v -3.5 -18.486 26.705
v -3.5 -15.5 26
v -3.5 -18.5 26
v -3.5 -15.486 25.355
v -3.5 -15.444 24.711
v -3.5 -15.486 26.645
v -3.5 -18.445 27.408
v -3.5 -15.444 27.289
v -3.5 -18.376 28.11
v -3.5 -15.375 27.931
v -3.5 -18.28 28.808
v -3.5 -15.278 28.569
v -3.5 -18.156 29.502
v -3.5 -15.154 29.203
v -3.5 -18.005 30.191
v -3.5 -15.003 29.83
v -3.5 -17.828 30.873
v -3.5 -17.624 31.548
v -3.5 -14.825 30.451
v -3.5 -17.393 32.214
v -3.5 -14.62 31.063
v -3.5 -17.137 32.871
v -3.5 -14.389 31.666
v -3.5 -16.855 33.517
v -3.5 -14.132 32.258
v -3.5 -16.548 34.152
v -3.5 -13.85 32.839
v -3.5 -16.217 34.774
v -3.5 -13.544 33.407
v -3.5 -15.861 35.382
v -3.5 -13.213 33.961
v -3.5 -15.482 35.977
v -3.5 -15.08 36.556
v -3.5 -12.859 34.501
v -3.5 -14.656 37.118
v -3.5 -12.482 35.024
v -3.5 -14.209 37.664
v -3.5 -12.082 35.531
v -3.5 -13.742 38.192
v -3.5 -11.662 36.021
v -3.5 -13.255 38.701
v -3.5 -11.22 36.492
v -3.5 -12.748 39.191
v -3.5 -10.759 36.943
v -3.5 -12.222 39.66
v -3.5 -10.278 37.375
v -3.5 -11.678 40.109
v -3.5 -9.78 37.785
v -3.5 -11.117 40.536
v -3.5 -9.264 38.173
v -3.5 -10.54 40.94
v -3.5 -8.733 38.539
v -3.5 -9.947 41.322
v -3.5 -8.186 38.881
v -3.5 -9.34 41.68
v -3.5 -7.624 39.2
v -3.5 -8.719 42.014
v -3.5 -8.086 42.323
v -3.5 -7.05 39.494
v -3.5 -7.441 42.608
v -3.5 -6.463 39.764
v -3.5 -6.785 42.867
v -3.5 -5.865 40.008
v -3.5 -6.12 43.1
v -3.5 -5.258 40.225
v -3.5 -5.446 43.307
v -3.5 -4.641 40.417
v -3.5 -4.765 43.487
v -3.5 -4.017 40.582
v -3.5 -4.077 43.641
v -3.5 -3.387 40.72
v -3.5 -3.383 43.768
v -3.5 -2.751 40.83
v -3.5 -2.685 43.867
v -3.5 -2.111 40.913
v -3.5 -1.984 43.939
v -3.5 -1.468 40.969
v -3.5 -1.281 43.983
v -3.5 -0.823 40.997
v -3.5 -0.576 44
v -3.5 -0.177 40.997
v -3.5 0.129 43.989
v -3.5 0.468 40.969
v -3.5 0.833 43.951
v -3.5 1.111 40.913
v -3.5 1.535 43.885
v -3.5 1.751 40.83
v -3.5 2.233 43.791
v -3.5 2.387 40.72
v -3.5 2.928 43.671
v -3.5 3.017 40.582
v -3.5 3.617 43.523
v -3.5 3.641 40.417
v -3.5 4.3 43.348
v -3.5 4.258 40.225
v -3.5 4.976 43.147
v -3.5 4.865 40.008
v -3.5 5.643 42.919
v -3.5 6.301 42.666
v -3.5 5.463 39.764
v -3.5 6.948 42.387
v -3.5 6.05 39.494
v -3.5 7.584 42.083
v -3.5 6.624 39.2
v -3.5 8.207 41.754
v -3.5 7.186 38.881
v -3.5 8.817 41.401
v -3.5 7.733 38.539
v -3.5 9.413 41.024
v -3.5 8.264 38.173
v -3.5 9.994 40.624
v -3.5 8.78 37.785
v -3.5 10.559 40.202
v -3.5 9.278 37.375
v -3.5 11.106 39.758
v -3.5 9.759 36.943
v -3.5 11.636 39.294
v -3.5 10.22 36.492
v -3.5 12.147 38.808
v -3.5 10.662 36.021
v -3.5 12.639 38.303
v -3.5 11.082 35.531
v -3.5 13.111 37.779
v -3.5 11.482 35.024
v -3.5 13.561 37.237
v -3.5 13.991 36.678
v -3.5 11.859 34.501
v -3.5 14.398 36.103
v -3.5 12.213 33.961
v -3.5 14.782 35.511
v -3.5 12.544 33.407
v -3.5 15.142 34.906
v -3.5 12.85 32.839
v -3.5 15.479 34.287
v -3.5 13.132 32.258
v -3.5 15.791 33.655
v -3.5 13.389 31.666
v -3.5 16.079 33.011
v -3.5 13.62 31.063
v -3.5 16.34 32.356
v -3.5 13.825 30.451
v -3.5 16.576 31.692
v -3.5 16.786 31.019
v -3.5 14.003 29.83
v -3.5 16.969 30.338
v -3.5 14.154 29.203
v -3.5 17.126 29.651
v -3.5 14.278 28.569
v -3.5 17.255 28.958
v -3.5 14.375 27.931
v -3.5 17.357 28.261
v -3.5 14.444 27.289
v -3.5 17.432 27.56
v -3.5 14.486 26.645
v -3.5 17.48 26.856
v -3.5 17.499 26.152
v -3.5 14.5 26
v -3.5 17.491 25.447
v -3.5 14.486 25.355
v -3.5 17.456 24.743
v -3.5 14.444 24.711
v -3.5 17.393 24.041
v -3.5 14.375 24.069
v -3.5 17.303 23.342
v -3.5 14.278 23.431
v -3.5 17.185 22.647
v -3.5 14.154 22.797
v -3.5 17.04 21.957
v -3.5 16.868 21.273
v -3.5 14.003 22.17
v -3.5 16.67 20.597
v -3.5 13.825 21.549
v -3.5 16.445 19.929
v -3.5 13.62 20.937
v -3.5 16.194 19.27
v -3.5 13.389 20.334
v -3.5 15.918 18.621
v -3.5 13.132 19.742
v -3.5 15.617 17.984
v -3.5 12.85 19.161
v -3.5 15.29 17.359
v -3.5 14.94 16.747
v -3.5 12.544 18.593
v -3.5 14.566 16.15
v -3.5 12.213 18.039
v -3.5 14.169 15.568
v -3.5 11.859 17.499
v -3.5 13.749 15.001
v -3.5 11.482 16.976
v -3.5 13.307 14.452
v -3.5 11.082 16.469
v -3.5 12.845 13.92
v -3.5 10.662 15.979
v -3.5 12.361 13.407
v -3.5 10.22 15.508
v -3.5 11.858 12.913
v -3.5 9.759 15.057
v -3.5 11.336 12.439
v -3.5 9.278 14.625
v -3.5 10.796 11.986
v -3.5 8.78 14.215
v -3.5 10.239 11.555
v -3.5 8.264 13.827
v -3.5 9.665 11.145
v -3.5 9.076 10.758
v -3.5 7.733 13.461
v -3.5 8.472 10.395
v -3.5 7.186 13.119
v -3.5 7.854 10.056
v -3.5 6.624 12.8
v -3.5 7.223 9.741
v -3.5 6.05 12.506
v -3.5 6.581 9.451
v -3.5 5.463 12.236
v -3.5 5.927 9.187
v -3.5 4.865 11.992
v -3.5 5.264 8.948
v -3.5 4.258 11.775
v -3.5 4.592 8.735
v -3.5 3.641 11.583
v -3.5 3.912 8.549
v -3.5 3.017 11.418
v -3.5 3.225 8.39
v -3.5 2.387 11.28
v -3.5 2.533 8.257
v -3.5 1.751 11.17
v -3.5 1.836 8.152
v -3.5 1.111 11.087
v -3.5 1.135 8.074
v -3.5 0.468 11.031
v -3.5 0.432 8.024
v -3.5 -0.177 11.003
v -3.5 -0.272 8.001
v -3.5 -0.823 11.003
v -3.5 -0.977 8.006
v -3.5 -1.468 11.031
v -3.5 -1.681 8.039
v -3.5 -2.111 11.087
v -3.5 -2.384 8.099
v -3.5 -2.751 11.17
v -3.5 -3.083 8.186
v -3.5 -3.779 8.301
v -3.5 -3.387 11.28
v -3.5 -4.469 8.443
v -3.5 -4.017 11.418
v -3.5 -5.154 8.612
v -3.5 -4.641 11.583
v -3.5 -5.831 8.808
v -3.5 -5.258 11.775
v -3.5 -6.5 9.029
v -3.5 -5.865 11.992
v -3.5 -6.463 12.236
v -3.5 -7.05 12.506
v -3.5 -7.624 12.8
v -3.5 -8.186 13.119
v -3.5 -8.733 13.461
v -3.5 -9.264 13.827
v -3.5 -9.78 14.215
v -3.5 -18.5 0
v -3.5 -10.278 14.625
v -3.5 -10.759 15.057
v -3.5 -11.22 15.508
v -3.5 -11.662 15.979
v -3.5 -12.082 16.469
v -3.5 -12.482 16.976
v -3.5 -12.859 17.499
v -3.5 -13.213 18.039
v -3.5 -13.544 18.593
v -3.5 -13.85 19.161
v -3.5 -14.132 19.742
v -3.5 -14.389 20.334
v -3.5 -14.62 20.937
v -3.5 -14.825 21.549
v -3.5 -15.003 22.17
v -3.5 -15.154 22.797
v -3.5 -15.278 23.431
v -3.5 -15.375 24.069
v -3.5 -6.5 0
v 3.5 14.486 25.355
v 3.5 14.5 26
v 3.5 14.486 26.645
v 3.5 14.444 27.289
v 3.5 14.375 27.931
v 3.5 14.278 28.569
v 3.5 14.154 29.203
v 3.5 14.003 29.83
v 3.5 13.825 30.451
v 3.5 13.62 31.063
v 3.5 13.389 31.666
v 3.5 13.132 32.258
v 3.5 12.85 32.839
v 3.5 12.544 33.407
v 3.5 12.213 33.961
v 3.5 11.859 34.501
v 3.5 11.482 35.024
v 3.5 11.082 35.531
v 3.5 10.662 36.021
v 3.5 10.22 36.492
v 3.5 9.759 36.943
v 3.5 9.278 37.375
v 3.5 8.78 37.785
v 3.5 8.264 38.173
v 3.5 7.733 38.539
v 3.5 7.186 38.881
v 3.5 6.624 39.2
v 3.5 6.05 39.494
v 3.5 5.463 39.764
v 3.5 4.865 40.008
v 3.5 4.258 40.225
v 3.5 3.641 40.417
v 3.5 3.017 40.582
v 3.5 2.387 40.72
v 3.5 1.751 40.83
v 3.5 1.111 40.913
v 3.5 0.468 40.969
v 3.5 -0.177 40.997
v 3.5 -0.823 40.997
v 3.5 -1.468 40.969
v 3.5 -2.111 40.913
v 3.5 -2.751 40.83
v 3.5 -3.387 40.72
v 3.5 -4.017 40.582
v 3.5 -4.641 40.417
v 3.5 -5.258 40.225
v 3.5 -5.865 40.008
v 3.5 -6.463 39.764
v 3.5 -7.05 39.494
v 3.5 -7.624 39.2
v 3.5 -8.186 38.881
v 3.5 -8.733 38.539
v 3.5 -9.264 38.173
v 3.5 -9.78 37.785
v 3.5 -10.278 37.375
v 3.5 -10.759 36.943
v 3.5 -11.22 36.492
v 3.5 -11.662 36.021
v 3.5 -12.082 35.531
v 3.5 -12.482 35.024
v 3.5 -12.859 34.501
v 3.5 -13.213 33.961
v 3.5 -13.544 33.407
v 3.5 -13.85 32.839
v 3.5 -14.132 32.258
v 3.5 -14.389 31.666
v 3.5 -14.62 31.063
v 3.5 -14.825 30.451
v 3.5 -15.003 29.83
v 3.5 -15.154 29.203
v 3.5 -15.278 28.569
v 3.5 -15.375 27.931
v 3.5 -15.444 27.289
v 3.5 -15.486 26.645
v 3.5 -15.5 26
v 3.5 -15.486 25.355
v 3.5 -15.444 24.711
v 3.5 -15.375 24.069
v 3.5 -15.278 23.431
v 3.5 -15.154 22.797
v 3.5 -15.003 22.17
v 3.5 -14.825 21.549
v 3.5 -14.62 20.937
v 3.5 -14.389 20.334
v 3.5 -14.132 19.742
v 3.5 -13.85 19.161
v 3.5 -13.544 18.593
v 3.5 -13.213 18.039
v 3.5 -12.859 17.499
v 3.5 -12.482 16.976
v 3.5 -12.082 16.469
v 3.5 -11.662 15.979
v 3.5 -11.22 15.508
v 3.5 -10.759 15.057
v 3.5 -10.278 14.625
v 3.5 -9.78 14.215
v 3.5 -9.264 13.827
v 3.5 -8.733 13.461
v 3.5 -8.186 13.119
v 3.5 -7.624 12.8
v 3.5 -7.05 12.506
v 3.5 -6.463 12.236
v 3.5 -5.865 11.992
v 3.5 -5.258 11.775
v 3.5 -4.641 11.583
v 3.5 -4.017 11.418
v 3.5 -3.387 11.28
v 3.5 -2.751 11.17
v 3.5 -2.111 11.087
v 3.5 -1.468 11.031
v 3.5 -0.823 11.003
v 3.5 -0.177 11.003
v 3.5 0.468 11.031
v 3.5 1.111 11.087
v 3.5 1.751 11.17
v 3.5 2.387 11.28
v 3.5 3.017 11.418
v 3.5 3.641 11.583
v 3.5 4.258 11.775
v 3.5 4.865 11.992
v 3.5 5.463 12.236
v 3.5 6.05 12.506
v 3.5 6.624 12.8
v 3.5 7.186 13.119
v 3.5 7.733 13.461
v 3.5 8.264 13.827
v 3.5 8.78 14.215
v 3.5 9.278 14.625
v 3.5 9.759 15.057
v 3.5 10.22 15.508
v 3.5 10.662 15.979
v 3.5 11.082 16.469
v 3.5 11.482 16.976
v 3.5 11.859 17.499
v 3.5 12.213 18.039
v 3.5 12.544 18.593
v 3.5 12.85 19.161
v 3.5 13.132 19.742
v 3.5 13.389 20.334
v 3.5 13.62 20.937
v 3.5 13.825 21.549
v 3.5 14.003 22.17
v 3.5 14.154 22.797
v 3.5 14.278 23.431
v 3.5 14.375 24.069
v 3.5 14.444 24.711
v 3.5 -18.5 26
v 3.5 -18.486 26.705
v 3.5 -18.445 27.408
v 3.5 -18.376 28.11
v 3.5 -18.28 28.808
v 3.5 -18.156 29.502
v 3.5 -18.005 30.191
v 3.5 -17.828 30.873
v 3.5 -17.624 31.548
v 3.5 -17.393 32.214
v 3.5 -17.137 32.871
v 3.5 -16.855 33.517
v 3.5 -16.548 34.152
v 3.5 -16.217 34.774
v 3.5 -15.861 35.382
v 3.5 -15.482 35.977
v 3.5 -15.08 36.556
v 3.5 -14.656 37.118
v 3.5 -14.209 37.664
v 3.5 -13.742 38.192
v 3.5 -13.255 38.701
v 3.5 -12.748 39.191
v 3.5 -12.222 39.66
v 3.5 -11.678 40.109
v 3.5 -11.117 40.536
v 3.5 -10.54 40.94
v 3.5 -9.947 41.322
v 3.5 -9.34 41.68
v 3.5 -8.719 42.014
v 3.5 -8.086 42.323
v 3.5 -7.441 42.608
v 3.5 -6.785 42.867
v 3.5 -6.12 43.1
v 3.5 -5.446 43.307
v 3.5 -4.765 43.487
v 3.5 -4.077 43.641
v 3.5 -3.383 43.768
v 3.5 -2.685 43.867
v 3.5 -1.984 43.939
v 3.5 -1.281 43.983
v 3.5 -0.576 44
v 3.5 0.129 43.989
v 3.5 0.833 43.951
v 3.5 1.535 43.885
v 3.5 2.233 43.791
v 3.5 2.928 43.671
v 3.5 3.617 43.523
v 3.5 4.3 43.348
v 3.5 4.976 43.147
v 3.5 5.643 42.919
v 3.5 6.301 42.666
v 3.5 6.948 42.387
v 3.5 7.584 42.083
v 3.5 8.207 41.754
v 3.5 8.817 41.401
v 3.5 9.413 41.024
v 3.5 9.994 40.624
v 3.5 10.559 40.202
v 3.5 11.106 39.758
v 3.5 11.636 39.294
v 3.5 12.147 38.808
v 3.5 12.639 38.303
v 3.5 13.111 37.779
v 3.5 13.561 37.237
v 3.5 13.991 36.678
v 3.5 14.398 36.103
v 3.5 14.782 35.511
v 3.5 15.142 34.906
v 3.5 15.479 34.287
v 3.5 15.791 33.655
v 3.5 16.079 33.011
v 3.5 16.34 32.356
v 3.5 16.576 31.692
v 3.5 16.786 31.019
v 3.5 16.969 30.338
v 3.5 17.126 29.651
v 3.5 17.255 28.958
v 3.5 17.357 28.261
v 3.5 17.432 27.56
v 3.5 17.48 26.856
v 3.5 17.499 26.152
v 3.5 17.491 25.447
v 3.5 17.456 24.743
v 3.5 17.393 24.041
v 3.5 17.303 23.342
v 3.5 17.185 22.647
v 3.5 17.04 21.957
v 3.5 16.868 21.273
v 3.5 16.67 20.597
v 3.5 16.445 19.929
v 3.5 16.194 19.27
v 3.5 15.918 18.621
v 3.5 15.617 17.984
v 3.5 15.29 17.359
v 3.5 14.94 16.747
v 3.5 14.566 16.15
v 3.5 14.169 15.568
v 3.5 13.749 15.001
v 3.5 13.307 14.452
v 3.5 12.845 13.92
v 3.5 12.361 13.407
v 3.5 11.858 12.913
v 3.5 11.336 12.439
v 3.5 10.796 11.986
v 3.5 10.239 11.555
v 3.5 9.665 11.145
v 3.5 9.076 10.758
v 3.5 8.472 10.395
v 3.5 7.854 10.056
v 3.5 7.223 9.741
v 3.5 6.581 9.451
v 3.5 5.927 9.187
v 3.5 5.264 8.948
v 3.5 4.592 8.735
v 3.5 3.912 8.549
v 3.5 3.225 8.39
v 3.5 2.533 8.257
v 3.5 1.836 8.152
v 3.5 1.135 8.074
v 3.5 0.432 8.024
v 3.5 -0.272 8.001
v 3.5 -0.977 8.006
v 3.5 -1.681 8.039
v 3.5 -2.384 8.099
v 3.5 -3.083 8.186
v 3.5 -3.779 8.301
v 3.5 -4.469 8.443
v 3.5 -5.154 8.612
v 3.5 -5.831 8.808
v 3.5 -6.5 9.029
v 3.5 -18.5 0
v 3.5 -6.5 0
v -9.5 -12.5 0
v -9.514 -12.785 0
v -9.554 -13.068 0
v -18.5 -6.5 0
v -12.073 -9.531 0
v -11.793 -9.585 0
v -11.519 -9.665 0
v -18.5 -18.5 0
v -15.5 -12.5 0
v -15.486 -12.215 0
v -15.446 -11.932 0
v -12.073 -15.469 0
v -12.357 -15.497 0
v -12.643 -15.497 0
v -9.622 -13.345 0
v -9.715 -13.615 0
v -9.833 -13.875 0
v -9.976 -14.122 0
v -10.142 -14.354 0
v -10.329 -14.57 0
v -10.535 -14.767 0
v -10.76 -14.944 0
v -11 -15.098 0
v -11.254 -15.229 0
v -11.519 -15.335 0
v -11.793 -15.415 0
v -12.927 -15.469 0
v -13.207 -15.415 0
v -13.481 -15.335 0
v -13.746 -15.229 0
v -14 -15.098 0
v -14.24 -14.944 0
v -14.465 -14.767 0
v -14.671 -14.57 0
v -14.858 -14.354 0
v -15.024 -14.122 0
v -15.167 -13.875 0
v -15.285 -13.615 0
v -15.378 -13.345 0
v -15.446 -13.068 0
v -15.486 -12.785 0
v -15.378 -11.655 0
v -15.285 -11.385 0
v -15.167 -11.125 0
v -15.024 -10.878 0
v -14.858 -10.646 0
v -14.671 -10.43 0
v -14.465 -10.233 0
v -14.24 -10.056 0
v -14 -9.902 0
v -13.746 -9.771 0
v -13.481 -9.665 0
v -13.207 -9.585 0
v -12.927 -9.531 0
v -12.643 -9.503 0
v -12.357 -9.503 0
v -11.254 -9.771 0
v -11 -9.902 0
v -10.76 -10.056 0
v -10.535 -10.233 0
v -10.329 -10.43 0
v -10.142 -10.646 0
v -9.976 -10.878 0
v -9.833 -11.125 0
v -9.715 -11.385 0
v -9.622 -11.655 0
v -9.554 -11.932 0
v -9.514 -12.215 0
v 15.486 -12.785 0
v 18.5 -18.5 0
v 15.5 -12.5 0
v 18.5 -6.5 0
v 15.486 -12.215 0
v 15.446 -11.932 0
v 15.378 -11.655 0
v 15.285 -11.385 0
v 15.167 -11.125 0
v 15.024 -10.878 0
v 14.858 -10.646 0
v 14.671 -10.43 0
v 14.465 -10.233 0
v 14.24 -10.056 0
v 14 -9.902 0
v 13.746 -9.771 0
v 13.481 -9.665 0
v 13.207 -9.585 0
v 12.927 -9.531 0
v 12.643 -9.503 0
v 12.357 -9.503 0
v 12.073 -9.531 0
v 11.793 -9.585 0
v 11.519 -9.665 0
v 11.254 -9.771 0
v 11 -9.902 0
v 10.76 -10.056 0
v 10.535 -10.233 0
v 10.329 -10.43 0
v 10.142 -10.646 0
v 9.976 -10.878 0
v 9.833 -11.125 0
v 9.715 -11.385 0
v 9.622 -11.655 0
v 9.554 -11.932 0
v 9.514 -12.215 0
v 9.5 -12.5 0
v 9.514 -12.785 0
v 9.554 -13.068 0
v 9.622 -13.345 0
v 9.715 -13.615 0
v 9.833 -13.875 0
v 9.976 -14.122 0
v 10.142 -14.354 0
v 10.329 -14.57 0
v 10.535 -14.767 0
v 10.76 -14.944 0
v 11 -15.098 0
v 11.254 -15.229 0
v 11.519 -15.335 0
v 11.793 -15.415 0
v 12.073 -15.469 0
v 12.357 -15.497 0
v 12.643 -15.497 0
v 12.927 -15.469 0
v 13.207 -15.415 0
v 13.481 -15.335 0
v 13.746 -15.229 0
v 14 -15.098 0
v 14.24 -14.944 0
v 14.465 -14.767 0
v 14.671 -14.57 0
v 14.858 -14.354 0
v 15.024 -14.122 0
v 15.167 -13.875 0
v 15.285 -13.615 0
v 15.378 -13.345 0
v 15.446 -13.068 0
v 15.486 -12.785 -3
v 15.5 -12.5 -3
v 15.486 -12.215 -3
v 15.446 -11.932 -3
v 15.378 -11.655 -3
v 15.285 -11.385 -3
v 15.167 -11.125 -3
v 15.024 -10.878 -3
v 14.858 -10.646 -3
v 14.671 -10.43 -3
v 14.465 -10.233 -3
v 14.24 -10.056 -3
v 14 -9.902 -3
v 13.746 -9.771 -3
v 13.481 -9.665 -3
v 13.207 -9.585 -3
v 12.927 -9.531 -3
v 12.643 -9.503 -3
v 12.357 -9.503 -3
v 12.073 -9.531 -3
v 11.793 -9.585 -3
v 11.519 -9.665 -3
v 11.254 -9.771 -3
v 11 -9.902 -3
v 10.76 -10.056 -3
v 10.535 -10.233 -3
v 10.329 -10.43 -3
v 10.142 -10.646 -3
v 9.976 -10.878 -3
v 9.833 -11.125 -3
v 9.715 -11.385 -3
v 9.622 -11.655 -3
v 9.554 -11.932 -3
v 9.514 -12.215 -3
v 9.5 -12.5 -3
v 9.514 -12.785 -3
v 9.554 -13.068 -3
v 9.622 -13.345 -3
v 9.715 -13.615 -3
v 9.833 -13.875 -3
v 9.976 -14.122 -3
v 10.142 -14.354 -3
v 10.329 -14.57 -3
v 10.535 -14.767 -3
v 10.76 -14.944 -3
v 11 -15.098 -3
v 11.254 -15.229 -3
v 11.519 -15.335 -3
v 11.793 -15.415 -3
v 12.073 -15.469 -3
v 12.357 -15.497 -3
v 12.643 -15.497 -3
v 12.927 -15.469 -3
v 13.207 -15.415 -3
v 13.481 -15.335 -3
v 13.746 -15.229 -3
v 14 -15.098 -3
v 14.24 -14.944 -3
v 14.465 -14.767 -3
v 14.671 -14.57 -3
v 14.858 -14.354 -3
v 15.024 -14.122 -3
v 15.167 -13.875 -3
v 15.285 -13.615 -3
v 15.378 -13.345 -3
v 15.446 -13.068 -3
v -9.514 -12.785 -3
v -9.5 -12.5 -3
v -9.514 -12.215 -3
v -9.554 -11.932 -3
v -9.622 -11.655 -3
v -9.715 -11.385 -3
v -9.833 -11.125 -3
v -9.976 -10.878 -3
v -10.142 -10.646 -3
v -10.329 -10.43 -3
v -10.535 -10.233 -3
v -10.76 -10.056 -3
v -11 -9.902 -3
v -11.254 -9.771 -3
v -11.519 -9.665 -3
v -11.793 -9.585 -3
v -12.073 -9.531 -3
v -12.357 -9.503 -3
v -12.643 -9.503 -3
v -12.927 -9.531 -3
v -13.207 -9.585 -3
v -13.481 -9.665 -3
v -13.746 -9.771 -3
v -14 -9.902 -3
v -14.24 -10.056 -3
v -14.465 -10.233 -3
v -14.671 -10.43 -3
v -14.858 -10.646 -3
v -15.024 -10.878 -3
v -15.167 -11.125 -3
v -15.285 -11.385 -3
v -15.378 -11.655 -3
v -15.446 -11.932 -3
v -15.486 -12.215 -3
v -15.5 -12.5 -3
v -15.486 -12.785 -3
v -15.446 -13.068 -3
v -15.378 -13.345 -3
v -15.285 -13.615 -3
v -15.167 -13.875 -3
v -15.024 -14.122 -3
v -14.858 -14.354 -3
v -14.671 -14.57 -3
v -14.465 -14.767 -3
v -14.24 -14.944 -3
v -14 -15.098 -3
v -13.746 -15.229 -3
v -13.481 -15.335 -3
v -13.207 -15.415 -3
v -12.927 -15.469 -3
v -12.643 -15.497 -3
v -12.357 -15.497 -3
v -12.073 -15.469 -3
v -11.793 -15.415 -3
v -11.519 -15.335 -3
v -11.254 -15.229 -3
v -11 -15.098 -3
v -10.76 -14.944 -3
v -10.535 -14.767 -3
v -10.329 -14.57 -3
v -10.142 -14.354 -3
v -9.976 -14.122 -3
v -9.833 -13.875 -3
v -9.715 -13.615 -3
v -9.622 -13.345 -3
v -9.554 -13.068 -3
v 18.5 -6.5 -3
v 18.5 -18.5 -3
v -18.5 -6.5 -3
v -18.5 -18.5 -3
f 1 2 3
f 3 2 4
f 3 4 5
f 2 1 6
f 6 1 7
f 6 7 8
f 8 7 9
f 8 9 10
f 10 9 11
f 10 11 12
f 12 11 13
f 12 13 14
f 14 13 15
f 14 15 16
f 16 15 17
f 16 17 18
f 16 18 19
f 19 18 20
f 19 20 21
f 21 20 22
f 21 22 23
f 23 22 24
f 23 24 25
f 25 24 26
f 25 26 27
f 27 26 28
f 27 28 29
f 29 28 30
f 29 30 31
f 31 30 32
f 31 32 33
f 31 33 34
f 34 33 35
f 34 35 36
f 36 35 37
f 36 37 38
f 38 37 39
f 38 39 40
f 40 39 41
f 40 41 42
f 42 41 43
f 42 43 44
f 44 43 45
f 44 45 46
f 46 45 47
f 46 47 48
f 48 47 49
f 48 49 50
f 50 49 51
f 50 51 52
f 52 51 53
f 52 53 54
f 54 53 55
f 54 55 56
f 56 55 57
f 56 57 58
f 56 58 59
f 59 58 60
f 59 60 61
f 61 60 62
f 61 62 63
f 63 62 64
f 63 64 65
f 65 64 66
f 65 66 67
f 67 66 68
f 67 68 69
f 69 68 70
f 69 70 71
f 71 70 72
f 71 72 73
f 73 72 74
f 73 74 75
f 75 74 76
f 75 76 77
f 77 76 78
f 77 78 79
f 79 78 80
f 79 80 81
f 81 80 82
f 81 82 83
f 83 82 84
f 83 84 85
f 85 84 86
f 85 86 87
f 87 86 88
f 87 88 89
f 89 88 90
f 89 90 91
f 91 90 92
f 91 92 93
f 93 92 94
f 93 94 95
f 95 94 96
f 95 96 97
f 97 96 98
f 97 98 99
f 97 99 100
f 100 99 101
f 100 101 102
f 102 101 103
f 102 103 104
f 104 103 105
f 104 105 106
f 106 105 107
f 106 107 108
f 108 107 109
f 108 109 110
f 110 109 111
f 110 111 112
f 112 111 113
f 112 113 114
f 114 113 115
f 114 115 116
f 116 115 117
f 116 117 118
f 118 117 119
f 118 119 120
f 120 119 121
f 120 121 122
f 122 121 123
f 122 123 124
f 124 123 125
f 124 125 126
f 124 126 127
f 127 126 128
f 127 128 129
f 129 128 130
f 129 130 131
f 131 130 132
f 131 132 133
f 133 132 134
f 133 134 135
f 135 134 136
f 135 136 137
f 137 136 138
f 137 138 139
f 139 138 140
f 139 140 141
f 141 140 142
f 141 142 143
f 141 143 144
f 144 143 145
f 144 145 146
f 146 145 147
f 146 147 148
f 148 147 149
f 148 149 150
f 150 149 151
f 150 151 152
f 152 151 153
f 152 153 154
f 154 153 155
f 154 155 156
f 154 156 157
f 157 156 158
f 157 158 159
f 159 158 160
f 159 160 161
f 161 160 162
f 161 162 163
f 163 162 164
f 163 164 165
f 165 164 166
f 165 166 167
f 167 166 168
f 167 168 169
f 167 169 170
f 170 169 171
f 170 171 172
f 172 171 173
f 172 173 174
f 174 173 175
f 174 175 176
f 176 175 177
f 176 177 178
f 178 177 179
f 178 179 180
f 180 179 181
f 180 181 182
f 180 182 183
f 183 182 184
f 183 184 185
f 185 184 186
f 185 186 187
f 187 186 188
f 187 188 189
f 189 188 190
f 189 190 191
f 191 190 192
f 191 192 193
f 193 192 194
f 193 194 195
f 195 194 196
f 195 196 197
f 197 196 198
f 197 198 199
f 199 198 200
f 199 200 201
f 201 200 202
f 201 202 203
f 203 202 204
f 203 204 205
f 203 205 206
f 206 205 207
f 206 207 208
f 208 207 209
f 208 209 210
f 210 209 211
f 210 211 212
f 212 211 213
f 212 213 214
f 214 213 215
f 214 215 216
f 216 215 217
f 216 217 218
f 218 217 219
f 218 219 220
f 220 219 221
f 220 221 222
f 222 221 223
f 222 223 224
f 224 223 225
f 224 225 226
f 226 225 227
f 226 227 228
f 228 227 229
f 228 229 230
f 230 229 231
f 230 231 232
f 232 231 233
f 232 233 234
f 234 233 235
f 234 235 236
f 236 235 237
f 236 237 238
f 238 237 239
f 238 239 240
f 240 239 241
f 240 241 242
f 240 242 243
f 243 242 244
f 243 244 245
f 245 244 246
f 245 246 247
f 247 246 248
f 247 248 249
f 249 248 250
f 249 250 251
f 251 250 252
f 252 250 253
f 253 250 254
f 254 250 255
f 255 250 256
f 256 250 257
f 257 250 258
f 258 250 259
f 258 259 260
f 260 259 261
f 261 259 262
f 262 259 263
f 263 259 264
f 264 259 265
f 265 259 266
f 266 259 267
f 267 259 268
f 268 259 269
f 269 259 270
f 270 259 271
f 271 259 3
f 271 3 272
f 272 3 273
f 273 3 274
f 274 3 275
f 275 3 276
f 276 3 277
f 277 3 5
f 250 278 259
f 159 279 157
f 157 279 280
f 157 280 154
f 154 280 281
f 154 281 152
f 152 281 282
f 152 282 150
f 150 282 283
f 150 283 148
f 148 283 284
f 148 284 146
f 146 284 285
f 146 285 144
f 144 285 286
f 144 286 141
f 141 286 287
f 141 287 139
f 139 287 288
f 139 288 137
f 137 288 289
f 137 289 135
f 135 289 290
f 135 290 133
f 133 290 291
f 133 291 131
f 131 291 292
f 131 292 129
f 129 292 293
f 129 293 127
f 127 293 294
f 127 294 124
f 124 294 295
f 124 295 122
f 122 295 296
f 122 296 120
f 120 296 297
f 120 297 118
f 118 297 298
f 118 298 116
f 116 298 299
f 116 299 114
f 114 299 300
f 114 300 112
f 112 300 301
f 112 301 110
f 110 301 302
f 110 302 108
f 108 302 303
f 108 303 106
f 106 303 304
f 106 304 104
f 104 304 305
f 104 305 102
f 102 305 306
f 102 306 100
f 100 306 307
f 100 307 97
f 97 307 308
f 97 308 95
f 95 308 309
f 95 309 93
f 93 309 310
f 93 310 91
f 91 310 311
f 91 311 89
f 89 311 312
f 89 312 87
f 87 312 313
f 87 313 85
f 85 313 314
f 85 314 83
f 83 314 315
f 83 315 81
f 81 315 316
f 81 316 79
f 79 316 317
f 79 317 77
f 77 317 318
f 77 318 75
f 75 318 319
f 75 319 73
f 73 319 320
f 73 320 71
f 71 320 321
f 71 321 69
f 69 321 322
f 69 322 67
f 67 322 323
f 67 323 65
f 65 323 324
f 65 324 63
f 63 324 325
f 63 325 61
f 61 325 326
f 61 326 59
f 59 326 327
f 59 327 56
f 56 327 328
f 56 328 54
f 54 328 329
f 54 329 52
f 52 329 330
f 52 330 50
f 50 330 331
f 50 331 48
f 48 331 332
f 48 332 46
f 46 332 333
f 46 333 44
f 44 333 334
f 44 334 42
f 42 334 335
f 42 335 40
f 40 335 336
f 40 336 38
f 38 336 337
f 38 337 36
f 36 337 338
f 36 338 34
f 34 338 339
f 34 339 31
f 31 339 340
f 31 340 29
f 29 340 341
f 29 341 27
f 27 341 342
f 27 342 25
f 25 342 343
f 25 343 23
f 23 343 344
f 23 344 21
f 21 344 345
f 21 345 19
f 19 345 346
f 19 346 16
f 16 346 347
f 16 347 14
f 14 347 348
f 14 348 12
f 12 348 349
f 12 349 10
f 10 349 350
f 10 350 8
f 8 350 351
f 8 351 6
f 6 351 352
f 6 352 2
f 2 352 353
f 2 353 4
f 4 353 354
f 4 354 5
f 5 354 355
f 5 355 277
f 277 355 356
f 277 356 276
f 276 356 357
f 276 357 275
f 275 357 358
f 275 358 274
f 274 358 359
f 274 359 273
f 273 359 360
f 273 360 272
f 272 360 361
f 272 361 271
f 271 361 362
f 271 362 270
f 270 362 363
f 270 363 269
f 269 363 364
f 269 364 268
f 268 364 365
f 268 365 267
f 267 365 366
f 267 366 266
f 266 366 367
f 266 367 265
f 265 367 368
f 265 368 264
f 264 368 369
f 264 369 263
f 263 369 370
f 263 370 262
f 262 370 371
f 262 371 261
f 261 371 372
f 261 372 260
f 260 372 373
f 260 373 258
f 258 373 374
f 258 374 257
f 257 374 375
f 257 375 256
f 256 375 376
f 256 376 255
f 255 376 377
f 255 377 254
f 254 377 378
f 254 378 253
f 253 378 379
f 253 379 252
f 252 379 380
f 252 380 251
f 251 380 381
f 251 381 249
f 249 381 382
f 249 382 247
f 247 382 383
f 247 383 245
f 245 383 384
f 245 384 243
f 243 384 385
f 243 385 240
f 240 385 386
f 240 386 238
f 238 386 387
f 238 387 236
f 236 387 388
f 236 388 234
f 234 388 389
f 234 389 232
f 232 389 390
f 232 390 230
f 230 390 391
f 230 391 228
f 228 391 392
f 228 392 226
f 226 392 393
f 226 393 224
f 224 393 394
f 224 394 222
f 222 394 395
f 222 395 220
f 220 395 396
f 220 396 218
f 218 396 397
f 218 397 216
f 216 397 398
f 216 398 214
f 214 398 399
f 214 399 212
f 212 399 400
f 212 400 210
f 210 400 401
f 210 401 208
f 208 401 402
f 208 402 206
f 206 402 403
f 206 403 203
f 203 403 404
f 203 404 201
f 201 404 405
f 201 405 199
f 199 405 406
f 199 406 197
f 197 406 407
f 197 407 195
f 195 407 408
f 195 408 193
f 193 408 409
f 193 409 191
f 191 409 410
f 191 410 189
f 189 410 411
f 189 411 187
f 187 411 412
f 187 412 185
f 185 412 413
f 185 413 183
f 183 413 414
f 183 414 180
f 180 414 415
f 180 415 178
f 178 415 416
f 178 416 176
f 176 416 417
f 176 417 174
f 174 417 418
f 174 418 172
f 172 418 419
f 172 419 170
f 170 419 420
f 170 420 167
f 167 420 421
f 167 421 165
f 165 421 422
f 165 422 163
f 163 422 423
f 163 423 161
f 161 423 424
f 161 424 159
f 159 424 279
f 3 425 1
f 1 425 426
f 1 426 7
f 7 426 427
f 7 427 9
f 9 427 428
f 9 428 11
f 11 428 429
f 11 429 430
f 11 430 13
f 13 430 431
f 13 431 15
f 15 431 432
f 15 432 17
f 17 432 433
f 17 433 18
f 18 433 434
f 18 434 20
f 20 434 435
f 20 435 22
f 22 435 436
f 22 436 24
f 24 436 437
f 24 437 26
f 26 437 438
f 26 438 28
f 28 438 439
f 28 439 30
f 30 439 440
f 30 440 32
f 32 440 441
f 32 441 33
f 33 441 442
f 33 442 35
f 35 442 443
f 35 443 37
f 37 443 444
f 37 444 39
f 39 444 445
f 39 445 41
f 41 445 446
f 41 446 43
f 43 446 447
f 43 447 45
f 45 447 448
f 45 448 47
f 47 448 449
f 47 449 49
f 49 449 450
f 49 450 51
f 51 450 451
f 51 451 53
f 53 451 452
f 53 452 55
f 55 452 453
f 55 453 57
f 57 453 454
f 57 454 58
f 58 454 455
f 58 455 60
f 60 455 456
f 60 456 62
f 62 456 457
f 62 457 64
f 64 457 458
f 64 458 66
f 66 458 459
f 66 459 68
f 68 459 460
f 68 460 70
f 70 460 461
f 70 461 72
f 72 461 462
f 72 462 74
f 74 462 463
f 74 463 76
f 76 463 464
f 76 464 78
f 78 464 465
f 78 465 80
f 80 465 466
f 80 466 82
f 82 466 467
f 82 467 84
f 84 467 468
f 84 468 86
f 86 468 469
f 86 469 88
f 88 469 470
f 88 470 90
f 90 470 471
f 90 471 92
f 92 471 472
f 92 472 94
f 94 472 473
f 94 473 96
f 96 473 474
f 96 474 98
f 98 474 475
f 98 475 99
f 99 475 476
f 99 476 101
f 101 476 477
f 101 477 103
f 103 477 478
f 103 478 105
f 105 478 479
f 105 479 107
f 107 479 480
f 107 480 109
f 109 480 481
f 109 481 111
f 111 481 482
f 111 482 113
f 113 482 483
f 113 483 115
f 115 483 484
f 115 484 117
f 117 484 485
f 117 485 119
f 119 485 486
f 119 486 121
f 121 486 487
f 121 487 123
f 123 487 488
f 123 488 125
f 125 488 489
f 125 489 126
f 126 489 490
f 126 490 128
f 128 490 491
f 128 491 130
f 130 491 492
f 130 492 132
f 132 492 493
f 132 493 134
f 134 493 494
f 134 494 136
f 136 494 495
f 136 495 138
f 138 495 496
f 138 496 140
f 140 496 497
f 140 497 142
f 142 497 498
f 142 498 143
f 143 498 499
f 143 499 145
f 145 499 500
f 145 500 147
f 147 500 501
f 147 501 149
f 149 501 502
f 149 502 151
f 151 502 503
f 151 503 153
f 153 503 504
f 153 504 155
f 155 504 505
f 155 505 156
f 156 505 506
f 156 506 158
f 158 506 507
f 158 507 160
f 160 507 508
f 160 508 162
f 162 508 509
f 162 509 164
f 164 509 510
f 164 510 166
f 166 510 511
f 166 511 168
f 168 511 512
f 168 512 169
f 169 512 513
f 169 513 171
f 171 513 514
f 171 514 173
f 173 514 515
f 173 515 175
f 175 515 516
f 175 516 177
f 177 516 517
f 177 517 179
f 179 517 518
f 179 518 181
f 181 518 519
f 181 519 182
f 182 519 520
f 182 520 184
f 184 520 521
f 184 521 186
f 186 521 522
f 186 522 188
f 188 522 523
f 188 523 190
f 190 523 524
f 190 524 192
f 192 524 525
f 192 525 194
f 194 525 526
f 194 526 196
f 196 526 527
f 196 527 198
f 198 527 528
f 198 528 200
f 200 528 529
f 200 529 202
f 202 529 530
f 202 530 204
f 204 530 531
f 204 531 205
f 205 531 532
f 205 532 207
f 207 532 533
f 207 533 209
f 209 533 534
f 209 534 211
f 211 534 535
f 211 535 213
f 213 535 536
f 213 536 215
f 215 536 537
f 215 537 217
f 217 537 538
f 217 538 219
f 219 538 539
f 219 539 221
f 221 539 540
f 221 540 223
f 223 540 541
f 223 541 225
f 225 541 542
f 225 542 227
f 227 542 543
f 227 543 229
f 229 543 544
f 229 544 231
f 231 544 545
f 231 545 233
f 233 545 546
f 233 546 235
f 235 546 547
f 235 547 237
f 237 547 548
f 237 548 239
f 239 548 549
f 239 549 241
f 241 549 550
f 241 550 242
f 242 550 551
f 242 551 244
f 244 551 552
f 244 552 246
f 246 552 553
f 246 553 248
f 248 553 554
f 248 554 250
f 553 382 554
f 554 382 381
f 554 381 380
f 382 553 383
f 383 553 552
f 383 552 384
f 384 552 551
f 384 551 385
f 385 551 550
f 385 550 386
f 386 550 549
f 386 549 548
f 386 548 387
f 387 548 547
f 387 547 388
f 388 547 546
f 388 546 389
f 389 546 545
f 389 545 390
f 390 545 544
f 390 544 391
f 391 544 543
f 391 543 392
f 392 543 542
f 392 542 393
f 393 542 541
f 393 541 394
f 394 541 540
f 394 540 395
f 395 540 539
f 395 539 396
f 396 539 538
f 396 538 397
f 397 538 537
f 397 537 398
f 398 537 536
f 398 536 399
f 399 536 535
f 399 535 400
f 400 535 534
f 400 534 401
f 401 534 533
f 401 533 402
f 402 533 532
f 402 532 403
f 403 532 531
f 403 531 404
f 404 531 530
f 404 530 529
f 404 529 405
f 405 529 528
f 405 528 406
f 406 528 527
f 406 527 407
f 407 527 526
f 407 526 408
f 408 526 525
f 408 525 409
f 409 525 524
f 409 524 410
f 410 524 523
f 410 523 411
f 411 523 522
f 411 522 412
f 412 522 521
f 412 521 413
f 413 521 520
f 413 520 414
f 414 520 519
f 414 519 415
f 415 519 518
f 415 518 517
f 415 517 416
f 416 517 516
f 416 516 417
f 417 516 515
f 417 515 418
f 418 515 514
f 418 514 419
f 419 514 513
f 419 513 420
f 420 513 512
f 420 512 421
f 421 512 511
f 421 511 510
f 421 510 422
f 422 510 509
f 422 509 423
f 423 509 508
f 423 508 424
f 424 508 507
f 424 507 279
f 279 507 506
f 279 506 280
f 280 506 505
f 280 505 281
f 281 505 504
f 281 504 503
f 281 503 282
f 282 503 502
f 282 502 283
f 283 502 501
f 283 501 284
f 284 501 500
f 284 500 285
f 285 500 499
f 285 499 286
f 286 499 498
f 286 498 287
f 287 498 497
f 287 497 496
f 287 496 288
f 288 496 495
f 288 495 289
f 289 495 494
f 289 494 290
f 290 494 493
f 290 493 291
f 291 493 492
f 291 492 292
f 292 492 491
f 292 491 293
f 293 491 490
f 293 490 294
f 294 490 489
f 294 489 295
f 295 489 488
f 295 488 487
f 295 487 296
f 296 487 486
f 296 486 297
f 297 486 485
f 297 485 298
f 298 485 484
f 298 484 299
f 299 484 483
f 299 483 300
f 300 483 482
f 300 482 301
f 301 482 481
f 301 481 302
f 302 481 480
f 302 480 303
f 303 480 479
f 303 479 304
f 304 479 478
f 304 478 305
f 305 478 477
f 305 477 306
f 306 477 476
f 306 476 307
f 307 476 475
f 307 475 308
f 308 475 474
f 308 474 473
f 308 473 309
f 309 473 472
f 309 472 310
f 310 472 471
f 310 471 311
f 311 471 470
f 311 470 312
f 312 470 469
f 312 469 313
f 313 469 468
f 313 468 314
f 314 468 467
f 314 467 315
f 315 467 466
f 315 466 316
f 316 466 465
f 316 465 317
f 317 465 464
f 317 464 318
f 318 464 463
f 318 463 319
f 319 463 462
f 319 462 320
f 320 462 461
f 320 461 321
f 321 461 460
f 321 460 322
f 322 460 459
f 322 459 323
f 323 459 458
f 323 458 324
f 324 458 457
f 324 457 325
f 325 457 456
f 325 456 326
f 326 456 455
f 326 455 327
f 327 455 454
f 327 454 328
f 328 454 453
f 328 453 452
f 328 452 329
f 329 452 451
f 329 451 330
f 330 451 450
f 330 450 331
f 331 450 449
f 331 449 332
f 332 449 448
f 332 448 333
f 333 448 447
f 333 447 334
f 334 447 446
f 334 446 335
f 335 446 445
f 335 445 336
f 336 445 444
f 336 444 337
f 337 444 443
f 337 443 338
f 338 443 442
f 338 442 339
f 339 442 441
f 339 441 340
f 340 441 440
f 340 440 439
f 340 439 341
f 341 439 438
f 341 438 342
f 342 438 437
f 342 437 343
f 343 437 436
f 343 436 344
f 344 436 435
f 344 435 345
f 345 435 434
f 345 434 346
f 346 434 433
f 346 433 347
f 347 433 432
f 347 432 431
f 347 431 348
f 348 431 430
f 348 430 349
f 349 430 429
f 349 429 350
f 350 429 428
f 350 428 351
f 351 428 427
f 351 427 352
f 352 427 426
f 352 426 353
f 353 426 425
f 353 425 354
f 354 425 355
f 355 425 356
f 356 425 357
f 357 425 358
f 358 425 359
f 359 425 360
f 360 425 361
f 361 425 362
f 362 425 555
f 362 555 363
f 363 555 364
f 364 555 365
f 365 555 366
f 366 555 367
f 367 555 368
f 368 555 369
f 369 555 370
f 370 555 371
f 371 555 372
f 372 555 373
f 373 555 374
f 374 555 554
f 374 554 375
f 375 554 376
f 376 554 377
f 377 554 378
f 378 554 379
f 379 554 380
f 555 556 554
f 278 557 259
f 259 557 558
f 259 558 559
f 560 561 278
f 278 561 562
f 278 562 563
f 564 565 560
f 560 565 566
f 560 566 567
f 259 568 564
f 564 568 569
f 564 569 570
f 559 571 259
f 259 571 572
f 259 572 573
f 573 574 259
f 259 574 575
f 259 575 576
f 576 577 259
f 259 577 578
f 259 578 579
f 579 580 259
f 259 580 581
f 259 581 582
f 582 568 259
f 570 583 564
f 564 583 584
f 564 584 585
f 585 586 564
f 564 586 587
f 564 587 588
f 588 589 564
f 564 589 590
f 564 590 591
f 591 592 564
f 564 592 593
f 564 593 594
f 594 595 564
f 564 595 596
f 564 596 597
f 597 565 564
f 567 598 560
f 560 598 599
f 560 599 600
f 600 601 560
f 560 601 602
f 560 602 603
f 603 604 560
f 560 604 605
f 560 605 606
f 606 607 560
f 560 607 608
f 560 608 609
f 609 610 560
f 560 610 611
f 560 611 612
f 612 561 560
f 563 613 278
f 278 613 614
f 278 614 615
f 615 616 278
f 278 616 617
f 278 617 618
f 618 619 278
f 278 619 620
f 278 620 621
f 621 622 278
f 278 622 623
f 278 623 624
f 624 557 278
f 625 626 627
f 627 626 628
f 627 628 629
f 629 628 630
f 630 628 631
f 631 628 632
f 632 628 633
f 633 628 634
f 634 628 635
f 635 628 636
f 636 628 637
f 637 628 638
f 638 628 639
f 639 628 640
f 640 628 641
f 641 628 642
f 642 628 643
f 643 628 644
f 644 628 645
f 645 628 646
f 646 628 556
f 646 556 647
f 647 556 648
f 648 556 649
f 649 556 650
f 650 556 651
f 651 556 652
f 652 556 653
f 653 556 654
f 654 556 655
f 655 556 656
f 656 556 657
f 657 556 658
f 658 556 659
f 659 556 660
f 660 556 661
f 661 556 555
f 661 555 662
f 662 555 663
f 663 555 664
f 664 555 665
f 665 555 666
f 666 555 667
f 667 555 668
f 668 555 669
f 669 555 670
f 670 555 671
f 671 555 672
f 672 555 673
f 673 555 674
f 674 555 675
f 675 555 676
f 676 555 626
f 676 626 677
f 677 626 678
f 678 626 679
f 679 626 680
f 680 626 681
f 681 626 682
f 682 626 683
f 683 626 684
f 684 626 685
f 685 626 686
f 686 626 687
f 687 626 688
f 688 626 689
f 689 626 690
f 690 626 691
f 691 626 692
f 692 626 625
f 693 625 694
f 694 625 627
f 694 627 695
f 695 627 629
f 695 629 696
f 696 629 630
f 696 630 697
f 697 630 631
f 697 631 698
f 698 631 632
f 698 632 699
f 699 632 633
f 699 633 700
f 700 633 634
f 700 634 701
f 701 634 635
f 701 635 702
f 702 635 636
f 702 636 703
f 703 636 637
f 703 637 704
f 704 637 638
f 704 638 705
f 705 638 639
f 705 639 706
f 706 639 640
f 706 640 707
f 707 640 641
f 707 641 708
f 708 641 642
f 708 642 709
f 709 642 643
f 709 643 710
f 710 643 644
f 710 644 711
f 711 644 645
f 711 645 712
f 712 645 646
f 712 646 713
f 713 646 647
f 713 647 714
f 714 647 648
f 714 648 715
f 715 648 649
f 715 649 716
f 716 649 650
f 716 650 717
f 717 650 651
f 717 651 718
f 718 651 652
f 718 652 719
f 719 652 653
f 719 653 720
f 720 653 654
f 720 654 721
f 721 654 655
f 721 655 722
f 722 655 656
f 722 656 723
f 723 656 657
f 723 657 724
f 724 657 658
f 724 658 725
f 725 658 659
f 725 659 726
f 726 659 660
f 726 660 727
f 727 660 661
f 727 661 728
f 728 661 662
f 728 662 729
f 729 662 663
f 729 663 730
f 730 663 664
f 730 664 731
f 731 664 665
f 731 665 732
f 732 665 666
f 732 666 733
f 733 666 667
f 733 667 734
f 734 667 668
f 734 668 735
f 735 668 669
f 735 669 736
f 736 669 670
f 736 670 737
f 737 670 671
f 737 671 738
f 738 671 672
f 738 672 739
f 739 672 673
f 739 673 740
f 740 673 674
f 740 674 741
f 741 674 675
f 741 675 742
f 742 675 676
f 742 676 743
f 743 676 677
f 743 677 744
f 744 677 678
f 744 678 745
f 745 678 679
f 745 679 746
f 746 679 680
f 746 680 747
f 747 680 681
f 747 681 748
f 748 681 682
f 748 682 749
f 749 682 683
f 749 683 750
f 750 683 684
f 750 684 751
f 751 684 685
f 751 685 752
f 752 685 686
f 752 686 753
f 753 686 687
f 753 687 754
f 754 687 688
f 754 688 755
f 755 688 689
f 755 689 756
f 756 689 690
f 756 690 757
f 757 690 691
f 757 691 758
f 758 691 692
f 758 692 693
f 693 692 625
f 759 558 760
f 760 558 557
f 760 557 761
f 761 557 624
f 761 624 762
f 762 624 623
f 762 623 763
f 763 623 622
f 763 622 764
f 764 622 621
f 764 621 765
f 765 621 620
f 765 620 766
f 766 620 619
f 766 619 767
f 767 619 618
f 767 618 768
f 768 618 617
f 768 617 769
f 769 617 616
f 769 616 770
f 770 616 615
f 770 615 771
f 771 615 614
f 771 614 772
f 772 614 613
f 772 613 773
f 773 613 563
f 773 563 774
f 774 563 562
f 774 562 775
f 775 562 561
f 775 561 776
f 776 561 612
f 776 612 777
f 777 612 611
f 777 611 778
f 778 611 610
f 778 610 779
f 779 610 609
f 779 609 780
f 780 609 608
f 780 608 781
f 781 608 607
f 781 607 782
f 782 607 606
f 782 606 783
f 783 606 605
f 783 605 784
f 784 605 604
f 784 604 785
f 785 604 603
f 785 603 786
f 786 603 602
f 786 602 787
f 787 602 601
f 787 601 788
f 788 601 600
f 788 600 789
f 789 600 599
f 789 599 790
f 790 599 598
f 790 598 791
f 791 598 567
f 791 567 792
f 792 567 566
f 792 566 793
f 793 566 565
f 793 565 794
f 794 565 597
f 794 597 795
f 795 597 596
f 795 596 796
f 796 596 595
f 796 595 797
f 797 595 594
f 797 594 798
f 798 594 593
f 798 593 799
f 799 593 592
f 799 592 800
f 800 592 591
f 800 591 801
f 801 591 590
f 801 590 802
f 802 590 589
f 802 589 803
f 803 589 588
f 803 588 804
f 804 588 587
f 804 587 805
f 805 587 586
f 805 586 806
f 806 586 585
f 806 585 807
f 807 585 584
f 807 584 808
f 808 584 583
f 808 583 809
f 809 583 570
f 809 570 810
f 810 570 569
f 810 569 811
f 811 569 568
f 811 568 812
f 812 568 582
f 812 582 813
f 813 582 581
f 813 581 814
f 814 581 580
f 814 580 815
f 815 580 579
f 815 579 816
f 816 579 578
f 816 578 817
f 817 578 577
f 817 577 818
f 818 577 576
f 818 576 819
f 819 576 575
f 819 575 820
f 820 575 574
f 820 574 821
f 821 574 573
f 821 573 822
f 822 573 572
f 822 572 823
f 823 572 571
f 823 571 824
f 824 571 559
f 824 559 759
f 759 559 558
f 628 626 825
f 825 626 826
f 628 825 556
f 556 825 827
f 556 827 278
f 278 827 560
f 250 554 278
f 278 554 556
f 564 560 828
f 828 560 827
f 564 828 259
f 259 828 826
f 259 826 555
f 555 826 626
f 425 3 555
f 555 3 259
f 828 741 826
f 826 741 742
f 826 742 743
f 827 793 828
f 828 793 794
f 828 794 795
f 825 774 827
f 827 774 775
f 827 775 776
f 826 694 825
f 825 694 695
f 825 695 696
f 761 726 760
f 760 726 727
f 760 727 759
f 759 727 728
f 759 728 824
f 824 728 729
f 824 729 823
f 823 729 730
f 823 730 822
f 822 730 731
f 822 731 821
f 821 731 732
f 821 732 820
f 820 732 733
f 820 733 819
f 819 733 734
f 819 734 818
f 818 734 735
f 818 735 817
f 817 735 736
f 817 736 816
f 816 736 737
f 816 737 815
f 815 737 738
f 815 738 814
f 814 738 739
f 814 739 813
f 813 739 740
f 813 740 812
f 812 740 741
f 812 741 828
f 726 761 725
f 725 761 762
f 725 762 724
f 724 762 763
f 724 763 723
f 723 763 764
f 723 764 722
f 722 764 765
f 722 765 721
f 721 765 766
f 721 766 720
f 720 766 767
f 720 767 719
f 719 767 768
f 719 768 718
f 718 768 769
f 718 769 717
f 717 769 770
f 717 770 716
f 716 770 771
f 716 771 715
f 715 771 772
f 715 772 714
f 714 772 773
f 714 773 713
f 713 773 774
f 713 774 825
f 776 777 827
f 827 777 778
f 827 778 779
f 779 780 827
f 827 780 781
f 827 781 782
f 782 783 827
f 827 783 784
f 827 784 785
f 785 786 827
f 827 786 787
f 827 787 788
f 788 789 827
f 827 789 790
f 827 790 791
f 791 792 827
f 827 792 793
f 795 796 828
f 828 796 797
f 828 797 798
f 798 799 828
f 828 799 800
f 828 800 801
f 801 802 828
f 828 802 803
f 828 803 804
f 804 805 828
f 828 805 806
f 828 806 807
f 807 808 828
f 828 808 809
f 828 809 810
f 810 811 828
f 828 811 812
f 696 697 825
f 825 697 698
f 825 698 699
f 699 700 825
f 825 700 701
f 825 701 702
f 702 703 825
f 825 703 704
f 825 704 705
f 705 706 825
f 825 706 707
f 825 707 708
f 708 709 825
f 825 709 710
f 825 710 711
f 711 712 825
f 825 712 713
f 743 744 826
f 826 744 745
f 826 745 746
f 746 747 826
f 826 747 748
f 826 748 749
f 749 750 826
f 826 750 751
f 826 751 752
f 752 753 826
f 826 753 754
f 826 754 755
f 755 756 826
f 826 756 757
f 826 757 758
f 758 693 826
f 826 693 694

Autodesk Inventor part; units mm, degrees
ref_plane "YZ Plane" through (0, 0, 0) normal (1, 0, 0) x (0, 1, 0)
ref_plane "XZ Plane" through (0, 0, 0) normal (0, 1, 0) x (-1, 0, 0)
sketch "Sketch1" plane through (0, 0, 0) normal (0, 0, 1) x (1, 0, 0)
  line L0 (-12.5, 12.5) -> (12.5, 12.5) construction
  line L1 (12.5, 12.5) -> (12.5, -12.5) construction
  line L2 (12.5, -12.5) -> (-12.5, -12.5) construction
  line L3 (-12.5, -12.5) -> (-12.5, 12.5) construction
  line L4 (-12.5, 12.5) -> (12.5, -12.5) construction
  line L5 (12.5, 12.5) -> (-12.5, -12.5) construction
  circle A0 centre (-12.5, 12.5) radius 3
  circle A1 centre (12.5, 12.5) radius 3
  circle A2 centre (12.5, -12.5) radius 3
  circle A3 centre (-12.5, -12.5) radius 3
  line L6 (-18.5, -18.5) -> (18.5, -18.5)
  line L7 (18.5, -18.5) -> (18.5, -6.5)
  line L8 (18.5, -6.5) -> (-18.5, -6.5)
  line L9 (-18.5, -6.5) -> (-18.5, -18.5)
  line L10 (-18.5, -18.5) -> (18.5, -6.5) construction
  line L11 (18.5, -18.5) -> (-18.5, -6.5) construction
  point P0 (0, 0)
  point P1 (0, -12.5)
  dimension "d0" = 25
  dimension "d1" = 25
  dimension "d2" = 6
  dimension "d3" = 6
  dimension "d4" = 6
  dimension "d5" = 6
  dimension "d38" = 37
  dimension "d39" = 12
extrude "Extrusion8" add sketch "Sketch1" against normal blind 3 contours L9 L8 L7 L6
ref_plane "Work Plane1" through (0, 0, 15) normal (0, 0, -1) x (-1, 0, 0)
sketch "Sketch4" plane through (0, 0, 0) normal (1, 0, 0) x (0, 1, 0)
  line L0 (-6.5, 0) -> (-18.5, 0) projected
  line L1 (-18.5, 0) -> (-6.5, 0)
  line L2 (-6.5, 0) -> (-6.5, 10)
  line L3 (-6.5, 10) -> (-18.5, 10)
  line L4 (-18.5, 10) -> (-18.5, 0)
  circle A0 centre (-0.5, 26) radius 15
  circle A1 centre (-0.5, 26) radius 18
  line L5 (-18.5, 10) -> (-18.5, 26)
  point P0 (-12.5, 10)
  point P1 (-18.5, 9.0294)
  point P2 (-6.5, 9.0294)
  dimension "d57" = 10
  dimension "d58" = 30
  dimension "d59" = 3
  dimension "d61" = 18
extrude "Extrusion9" add sketch "Sketch4" along normal mid plane 7
properties part number "syringe_mount"
